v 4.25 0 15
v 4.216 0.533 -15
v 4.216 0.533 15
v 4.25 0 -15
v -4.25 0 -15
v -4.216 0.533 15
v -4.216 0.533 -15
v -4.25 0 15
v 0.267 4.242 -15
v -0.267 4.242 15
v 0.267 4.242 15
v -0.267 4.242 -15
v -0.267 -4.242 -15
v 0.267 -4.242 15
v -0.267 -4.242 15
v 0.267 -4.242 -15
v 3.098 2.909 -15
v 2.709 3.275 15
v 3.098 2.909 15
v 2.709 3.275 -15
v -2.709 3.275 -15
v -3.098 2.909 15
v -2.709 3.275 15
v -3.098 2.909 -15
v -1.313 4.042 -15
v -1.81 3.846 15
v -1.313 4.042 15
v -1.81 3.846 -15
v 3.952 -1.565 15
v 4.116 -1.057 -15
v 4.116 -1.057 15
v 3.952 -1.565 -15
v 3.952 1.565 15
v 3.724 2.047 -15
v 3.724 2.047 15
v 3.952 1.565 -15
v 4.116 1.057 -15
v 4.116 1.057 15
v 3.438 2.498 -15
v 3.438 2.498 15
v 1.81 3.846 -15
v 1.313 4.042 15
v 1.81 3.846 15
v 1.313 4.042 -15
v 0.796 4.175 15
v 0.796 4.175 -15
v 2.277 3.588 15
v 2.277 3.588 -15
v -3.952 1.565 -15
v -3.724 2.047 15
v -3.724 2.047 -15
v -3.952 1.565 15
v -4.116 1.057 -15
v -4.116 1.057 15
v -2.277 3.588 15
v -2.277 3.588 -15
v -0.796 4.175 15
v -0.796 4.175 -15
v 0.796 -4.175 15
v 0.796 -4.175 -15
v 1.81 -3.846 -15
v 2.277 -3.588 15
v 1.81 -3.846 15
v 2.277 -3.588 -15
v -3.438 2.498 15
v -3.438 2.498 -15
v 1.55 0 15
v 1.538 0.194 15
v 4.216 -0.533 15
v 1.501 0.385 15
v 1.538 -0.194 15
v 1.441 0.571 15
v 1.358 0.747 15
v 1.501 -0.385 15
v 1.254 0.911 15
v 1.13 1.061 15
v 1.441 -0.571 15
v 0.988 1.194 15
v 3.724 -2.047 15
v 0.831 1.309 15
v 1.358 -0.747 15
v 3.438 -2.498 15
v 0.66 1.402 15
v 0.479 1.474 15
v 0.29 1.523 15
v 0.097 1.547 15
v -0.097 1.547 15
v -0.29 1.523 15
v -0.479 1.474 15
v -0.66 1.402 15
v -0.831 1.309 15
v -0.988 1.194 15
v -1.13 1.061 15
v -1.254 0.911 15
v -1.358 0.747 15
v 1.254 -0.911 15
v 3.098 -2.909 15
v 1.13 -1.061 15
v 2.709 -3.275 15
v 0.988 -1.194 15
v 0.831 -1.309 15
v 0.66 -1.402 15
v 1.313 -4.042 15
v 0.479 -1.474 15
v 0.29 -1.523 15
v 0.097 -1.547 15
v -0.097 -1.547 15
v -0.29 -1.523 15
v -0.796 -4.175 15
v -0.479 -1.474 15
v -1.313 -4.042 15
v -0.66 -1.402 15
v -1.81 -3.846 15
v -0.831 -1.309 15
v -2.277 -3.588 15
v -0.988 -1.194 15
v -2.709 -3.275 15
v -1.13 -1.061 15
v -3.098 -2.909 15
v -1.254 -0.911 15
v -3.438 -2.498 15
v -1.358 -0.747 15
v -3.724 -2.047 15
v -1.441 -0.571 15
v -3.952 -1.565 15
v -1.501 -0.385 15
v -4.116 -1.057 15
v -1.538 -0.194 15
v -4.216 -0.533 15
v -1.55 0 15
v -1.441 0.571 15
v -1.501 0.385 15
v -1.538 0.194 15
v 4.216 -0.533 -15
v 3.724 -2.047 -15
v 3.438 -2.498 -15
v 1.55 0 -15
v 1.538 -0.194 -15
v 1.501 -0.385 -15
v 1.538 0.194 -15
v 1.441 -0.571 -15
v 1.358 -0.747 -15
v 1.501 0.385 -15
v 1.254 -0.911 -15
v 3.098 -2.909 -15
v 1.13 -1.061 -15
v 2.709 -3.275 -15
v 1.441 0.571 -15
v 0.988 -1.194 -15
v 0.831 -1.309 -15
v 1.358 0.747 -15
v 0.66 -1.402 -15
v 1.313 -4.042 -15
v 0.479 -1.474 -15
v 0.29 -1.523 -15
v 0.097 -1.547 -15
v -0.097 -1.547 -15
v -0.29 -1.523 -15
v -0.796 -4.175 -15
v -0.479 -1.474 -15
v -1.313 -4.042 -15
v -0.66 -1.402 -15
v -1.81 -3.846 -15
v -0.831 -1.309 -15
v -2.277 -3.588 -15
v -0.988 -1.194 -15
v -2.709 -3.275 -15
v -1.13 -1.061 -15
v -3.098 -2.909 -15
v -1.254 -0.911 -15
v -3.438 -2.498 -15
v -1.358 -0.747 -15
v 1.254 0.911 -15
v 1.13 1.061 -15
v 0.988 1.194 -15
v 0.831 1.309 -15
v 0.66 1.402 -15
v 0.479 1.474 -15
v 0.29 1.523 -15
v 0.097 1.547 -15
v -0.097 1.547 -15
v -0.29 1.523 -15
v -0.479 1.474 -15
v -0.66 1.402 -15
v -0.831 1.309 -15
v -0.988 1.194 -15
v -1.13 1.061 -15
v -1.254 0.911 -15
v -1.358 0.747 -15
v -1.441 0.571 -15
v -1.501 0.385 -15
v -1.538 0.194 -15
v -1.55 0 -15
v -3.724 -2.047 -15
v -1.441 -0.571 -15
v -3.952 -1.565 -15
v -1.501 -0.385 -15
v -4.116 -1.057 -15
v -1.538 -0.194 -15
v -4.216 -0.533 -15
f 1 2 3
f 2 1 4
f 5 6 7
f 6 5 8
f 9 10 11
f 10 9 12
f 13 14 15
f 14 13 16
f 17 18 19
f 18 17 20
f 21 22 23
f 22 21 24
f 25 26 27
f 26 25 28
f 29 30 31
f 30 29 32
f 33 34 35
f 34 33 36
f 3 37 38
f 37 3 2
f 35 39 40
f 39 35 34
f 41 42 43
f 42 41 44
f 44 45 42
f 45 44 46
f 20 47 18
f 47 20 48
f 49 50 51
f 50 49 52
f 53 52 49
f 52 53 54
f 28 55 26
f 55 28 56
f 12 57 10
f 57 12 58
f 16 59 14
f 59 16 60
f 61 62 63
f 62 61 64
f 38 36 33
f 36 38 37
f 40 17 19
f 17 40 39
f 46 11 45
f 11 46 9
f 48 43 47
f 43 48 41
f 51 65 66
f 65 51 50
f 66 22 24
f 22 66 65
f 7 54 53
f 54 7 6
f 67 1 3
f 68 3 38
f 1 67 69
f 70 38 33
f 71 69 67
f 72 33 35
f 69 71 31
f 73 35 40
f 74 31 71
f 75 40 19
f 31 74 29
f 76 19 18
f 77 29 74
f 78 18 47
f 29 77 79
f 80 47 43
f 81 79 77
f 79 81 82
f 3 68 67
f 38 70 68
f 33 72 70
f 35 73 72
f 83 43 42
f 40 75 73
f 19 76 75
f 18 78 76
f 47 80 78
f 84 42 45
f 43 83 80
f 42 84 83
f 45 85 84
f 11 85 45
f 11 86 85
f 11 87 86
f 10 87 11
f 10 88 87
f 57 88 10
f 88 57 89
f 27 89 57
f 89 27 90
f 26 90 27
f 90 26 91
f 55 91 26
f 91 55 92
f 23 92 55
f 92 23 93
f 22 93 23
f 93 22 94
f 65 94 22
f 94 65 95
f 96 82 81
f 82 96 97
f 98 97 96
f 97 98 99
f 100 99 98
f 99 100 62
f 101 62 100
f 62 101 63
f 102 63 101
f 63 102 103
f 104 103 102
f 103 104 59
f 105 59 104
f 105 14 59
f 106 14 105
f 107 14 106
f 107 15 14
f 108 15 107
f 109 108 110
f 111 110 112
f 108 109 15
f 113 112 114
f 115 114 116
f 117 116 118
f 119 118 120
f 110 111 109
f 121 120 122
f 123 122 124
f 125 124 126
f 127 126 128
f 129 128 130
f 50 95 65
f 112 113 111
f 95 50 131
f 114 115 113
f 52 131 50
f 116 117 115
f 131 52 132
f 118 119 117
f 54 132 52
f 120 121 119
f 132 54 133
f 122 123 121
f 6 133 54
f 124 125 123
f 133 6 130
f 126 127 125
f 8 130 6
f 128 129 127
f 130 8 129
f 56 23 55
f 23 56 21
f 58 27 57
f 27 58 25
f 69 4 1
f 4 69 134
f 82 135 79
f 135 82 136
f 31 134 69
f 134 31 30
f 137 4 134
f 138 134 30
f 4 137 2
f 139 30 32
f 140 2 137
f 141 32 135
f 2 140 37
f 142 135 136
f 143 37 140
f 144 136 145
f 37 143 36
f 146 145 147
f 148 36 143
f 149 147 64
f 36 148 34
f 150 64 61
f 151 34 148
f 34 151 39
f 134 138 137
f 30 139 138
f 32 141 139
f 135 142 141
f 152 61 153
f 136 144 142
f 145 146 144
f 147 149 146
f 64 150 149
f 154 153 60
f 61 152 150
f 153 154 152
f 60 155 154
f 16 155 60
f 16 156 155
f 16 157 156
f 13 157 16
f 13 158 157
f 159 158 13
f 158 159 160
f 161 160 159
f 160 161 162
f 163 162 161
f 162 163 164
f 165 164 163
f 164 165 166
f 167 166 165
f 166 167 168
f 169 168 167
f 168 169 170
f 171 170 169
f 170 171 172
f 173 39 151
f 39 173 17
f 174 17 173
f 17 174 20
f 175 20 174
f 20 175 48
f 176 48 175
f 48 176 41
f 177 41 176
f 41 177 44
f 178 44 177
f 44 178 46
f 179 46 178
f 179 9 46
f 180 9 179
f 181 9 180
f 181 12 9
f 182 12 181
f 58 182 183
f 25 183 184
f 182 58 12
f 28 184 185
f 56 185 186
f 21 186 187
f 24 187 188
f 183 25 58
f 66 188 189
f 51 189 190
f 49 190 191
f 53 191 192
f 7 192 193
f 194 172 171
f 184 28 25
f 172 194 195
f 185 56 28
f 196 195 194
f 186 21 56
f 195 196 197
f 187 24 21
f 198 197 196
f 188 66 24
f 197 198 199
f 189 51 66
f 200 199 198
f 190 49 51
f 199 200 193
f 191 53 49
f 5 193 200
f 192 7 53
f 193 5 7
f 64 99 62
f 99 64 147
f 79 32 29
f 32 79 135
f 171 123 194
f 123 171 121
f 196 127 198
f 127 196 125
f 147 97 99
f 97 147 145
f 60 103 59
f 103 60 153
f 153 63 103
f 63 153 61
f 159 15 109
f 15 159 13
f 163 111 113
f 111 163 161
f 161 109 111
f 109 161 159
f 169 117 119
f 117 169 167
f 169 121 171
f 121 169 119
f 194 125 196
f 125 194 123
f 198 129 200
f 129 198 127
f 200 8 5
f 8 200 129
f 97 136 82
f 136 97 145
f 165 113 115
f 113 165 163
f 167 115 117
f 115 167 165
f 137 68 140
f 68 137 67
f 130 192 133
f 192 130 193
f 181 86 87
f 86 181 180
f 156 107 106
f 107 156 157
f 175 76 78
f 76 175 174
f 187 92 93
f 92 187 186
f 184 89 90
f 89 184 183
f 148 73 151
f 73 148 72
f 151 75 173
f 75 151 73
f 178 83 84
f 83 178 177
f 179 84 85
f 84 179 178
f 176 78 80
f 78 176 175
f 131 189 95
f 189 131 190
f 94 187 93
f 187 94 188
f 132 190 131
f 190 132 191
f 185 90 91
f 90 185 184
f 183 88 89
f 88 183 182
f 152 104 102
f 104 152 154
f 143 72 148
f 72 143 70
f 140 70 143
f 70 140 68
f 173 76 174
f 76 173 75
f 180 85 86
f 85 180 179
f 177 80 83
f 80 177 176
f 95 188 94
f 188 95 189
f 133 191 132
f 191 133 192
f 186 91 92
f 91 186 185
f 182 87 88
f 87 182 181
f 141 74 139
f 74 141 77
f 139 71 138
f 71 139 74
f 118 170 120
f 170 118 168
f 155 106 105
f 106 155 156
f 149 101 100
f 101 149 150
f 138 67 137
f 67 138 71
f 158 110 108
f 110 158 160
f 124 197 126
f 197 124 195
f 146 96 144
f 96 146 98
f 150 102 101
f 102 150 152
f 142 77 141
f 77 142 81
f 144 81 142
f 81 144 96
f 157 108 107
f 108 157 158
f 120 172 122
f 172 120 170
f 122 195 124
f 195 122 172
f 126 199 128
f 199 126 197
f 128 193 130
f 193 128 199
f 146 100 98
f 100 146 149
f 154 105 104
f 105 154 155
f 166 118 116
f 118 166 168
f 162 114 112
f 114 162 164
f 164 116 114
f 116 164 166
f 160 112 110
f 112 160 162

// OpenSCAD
$fn = 50;


difference() {
	union() {
		translate(v = [0, 0, -15.0000000000]) {
			cylinder(h = 30, r = 4.2500000000);
		}
	}
	union() {
		translate(v = [0, 0, -100.0000000000]) {
			cylinder(h = 200, r = 1.5500000000);
		}
	}
}
